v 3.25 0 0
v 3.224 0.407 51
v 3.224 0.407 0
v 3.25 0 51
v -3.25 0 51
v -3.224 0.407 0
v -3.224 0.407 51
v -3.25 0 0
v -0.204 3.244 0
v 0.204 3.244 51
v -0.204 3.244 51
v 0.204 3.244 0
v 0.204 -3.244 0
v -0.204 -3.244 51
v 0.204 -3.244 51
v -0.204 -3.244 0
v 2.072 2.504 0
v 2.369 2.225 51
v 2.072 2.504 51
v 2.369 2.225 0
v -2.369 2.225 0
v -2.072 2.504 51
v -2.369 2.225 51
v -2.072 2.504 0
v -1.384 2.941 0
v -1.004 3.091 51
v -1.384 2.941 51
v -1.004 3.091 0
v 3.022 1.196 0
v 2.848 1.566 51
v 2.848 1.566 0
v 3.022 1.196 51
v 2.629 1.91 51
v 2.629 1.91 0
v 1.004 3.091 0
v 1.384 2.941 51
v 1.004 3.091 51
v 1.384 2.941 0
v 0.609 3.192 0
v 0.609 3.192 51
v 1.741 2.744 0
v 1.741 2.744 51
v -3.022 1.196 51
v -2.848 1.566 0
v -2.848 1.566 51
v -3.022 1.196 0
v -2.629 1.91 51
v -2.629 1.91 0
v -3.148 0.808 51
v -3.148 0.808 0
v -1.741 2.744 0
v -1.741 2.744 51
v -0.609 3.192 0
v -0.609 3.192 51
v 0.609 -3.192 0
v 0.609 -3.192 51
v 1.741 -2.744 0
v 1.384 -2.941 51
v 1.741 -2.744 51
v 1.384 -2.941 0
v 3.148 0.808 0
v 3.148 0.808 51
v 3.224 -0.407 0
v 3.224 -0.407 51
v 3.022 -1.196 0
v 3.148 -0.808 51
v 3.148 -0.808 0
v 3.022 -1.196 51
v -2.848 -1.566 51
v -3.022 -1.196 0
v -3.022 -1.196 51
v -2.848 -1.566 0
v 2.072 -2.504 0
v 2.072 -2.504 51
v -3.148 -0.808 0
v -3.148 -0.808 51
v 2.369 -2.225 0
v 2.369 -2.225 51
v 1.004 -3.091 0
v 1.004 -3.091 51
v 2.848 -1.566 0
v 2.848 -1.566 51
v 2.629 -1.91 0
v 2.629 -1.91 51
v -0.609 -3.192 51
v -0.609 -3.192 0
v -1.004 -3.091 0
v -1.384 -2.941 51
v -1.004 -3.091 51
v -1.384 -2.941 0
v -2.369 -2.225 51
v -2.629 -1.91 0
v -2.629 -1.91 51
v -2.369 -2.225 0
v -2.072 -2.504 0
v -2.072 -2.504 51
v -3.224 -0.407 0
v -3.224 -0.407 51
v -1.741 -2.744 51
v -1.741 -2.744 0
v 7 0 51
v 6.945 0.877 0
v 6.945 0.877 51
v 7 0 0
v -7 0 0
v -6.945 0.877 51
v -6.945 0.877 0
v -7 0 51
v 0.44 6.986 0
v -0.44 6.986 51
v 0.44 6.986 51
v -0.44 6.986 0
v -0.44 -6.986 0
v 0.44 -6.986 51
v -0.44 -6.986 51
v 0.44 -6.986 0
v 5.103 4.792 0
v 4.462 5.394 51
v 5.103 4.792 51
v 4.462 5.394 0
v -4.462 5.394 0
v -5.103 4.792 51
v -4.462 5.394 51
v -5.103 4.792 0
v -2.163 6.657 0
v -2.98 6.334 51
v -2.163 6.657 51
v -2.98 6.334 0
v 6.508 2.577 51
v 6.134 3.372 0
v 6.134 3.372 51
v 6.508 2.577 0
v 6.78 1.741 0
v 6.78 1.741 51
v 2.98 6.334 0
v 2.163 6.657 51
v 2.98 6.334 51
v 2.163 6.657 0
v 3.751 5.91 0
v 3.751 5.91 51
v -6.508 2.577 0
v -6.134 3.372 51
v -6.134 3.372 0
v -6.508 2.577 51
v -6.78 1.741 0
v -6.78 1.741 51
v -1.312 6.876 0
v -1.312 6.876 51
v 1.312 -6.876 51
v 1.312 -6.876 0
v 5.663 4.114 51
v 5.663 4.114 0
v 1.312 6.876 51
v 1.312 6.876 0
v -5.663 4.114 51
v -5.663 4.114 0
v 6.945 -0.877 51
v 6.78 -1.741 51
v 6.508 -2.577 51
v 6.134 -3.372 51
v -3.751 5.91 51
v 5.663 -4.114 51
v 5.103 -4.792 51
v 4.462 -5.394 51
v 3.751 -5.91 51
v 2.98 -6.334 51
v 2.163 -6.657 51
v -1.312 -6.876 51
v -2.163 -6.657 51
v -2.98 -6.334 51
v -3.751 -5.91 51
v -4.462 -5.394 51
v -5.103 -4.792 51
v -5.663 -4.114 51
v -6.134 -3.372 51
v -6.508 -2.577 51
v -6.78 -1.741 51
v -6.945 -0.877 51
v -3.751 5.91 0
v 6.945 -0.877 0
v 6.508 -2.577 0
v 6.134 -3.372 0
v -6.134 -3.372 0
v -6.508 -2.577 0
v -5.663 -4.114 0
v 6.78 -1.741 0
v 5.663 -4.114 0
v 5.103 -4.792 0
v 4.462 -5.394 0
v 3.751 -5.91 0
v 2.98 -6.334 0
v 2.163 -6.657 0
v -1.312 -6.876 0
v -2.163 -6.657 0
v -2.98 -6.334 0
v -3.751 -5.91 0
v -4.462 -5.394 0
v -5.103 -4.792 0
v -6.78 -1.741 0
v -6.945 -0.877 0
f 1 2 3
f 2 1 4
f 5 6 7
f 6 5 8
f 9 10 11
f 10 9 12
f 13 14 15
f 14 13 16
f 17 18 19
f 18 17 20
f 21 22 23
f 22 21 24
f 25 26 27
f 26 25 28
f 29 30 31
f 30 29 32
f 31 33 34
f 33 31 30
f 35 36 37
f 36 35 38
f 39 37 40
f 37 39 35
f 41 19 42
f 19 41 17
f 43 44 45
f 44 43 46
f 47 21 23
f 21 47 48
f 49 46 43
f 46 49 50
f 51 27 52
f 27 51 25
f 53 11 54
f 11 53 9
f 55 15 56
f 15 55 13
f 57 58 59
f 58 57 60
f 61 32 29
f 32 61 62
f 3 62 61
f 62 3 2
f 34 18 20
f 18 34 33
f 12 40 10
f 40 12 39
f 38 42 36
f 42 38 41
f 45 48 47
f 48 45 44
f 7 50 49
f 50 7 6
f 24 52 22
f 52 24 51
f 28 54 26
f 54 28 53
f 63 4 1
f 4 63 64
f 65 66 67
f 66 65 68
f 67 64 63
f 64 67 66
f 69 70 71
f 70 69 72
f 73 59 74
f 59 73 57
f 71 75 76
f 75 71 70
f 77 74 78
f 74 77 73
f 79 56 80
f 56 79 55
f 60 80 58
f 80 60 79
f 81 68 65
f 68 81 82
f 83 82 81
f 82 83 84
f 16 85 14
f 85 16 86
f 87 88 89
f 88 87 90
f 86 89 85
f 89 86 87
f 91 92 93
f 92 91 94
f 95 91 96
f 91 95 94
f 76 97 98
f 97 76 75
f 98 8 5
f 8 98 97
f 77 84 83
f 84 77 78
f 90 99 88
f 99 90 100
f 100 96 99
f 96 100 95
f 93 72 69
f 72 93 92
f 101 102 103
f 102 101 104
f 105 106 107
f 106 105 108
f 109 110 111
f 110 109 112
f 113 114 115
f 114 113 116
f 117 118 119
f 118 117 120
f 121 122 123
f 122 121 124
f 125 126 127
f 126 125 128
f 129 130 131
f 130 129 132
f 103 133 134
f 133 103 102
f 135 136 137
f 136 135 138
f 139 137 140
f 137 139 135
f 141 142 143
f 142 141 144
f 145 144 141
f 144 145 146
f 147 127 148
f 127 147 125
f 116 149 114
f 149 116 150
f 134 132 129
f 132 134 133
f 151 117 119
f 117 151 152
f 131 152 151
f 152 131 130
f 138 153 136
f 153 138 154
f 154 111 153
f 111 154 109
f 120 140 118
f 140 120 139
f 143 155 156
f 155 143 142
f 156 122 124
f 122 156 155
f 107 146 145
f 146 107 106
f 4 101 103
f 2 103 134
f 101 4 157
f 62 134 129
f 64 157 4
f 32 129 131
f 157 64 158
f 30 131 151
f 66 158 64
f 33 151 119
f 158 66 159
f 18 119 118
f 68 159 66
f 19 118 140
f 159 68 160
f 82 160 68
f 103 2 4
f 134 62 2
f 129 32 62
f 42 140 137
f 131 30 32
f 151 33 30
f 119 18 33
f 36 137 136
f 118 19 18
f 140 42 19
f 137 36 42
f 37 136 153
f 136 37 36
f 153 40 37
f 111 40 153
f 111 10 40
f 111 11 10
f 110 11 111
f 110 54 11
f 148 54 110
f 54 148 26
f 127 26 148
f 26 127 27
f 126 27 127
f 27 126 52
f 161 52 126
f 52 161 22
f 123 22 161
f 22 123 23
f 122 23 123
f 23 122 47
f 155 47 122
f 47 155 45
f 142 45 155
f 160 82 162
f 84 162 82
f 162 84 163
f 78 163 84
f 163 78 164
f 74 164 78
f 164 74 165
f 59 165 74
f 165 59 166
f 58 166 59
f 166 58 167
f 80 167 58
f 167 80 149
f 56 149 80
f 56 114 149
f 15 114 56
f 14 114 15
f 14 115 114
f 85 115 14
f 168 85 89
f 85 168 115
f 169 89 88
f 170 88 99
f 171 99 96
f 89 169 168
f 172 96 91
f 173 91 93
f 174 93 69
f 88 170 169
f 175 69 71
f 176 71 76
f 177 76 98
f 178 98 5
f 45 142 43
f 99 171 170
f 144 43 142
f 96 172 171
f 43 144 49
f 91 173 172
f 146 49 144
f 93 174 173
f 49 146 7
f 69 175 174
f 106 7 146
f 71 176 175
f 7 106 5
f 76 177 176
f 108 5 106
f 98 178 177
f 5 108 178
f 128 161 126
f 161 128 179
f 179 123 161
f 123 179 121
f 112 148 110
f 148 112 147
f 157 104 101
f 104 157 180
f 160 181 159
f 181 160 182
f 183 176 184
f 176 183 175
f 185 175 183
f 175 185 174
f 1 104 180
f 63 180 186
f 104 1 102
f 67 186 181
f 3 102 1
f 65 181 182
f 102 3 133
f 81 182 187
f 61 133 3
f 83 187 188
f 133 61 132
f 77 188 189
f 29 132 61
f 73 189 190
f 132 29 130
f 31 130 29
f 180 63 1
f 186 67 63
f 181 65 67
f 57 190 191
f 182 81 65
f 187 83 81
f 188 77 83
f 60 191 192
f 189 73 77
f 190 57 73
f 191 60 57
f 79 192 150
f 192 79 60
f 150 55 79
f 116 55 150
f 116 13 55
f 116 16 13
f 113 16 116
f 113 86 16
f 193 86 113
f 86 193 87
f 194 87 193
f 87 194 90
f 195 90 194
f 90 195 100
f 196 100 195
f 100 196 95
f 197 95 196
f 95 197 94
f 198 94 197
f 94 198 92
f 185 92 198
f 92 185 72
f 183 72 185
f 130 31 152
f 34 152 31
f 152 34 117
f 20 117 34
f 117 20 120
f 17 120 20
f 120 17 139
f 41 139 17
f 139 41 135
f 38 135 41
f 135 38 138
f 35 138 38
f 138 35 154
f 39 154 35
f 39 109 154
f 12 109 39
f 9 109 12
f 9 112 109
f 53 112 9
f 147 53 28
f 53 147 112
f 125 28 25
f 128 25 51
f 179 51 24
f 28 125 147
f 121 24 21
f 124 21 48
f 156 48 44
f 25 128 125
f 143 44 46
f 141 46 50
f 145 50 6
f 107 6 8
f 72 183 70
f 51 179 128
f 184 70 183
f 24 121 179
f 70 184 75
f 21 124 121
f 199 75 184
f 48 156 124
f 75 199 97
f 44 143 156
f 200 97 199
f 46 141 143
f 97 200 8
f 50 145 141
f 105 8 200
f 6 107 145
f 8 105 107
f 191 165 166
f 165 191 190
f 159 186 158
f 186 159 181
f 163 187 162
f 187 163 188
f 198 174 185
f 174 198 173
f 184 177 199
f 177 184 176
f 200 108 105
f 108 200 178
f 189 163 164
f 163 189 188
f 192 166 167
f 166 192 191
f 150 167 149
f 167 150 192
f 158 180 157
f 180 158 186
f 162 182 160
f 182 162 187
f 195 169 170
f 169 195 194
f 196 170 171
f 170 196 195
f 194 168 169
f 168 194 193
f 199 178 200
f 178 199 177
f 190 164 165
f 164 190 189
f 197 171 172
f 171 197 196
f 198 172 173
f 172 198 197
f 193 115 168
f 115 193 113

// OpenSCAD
$fn = 50;


difference() {
	union() {
		cylinder(h = 51, r = 7.0000000000);
	}
	union() {
		translate(v = [0, 0, -100]) {
			cylinder(h = 200, r = 3.2500000000);
		}
		translate(v = [0, 0, -100]) {
			cylinder(h = 200, r = 1.8000000000);
		}
	}
}
